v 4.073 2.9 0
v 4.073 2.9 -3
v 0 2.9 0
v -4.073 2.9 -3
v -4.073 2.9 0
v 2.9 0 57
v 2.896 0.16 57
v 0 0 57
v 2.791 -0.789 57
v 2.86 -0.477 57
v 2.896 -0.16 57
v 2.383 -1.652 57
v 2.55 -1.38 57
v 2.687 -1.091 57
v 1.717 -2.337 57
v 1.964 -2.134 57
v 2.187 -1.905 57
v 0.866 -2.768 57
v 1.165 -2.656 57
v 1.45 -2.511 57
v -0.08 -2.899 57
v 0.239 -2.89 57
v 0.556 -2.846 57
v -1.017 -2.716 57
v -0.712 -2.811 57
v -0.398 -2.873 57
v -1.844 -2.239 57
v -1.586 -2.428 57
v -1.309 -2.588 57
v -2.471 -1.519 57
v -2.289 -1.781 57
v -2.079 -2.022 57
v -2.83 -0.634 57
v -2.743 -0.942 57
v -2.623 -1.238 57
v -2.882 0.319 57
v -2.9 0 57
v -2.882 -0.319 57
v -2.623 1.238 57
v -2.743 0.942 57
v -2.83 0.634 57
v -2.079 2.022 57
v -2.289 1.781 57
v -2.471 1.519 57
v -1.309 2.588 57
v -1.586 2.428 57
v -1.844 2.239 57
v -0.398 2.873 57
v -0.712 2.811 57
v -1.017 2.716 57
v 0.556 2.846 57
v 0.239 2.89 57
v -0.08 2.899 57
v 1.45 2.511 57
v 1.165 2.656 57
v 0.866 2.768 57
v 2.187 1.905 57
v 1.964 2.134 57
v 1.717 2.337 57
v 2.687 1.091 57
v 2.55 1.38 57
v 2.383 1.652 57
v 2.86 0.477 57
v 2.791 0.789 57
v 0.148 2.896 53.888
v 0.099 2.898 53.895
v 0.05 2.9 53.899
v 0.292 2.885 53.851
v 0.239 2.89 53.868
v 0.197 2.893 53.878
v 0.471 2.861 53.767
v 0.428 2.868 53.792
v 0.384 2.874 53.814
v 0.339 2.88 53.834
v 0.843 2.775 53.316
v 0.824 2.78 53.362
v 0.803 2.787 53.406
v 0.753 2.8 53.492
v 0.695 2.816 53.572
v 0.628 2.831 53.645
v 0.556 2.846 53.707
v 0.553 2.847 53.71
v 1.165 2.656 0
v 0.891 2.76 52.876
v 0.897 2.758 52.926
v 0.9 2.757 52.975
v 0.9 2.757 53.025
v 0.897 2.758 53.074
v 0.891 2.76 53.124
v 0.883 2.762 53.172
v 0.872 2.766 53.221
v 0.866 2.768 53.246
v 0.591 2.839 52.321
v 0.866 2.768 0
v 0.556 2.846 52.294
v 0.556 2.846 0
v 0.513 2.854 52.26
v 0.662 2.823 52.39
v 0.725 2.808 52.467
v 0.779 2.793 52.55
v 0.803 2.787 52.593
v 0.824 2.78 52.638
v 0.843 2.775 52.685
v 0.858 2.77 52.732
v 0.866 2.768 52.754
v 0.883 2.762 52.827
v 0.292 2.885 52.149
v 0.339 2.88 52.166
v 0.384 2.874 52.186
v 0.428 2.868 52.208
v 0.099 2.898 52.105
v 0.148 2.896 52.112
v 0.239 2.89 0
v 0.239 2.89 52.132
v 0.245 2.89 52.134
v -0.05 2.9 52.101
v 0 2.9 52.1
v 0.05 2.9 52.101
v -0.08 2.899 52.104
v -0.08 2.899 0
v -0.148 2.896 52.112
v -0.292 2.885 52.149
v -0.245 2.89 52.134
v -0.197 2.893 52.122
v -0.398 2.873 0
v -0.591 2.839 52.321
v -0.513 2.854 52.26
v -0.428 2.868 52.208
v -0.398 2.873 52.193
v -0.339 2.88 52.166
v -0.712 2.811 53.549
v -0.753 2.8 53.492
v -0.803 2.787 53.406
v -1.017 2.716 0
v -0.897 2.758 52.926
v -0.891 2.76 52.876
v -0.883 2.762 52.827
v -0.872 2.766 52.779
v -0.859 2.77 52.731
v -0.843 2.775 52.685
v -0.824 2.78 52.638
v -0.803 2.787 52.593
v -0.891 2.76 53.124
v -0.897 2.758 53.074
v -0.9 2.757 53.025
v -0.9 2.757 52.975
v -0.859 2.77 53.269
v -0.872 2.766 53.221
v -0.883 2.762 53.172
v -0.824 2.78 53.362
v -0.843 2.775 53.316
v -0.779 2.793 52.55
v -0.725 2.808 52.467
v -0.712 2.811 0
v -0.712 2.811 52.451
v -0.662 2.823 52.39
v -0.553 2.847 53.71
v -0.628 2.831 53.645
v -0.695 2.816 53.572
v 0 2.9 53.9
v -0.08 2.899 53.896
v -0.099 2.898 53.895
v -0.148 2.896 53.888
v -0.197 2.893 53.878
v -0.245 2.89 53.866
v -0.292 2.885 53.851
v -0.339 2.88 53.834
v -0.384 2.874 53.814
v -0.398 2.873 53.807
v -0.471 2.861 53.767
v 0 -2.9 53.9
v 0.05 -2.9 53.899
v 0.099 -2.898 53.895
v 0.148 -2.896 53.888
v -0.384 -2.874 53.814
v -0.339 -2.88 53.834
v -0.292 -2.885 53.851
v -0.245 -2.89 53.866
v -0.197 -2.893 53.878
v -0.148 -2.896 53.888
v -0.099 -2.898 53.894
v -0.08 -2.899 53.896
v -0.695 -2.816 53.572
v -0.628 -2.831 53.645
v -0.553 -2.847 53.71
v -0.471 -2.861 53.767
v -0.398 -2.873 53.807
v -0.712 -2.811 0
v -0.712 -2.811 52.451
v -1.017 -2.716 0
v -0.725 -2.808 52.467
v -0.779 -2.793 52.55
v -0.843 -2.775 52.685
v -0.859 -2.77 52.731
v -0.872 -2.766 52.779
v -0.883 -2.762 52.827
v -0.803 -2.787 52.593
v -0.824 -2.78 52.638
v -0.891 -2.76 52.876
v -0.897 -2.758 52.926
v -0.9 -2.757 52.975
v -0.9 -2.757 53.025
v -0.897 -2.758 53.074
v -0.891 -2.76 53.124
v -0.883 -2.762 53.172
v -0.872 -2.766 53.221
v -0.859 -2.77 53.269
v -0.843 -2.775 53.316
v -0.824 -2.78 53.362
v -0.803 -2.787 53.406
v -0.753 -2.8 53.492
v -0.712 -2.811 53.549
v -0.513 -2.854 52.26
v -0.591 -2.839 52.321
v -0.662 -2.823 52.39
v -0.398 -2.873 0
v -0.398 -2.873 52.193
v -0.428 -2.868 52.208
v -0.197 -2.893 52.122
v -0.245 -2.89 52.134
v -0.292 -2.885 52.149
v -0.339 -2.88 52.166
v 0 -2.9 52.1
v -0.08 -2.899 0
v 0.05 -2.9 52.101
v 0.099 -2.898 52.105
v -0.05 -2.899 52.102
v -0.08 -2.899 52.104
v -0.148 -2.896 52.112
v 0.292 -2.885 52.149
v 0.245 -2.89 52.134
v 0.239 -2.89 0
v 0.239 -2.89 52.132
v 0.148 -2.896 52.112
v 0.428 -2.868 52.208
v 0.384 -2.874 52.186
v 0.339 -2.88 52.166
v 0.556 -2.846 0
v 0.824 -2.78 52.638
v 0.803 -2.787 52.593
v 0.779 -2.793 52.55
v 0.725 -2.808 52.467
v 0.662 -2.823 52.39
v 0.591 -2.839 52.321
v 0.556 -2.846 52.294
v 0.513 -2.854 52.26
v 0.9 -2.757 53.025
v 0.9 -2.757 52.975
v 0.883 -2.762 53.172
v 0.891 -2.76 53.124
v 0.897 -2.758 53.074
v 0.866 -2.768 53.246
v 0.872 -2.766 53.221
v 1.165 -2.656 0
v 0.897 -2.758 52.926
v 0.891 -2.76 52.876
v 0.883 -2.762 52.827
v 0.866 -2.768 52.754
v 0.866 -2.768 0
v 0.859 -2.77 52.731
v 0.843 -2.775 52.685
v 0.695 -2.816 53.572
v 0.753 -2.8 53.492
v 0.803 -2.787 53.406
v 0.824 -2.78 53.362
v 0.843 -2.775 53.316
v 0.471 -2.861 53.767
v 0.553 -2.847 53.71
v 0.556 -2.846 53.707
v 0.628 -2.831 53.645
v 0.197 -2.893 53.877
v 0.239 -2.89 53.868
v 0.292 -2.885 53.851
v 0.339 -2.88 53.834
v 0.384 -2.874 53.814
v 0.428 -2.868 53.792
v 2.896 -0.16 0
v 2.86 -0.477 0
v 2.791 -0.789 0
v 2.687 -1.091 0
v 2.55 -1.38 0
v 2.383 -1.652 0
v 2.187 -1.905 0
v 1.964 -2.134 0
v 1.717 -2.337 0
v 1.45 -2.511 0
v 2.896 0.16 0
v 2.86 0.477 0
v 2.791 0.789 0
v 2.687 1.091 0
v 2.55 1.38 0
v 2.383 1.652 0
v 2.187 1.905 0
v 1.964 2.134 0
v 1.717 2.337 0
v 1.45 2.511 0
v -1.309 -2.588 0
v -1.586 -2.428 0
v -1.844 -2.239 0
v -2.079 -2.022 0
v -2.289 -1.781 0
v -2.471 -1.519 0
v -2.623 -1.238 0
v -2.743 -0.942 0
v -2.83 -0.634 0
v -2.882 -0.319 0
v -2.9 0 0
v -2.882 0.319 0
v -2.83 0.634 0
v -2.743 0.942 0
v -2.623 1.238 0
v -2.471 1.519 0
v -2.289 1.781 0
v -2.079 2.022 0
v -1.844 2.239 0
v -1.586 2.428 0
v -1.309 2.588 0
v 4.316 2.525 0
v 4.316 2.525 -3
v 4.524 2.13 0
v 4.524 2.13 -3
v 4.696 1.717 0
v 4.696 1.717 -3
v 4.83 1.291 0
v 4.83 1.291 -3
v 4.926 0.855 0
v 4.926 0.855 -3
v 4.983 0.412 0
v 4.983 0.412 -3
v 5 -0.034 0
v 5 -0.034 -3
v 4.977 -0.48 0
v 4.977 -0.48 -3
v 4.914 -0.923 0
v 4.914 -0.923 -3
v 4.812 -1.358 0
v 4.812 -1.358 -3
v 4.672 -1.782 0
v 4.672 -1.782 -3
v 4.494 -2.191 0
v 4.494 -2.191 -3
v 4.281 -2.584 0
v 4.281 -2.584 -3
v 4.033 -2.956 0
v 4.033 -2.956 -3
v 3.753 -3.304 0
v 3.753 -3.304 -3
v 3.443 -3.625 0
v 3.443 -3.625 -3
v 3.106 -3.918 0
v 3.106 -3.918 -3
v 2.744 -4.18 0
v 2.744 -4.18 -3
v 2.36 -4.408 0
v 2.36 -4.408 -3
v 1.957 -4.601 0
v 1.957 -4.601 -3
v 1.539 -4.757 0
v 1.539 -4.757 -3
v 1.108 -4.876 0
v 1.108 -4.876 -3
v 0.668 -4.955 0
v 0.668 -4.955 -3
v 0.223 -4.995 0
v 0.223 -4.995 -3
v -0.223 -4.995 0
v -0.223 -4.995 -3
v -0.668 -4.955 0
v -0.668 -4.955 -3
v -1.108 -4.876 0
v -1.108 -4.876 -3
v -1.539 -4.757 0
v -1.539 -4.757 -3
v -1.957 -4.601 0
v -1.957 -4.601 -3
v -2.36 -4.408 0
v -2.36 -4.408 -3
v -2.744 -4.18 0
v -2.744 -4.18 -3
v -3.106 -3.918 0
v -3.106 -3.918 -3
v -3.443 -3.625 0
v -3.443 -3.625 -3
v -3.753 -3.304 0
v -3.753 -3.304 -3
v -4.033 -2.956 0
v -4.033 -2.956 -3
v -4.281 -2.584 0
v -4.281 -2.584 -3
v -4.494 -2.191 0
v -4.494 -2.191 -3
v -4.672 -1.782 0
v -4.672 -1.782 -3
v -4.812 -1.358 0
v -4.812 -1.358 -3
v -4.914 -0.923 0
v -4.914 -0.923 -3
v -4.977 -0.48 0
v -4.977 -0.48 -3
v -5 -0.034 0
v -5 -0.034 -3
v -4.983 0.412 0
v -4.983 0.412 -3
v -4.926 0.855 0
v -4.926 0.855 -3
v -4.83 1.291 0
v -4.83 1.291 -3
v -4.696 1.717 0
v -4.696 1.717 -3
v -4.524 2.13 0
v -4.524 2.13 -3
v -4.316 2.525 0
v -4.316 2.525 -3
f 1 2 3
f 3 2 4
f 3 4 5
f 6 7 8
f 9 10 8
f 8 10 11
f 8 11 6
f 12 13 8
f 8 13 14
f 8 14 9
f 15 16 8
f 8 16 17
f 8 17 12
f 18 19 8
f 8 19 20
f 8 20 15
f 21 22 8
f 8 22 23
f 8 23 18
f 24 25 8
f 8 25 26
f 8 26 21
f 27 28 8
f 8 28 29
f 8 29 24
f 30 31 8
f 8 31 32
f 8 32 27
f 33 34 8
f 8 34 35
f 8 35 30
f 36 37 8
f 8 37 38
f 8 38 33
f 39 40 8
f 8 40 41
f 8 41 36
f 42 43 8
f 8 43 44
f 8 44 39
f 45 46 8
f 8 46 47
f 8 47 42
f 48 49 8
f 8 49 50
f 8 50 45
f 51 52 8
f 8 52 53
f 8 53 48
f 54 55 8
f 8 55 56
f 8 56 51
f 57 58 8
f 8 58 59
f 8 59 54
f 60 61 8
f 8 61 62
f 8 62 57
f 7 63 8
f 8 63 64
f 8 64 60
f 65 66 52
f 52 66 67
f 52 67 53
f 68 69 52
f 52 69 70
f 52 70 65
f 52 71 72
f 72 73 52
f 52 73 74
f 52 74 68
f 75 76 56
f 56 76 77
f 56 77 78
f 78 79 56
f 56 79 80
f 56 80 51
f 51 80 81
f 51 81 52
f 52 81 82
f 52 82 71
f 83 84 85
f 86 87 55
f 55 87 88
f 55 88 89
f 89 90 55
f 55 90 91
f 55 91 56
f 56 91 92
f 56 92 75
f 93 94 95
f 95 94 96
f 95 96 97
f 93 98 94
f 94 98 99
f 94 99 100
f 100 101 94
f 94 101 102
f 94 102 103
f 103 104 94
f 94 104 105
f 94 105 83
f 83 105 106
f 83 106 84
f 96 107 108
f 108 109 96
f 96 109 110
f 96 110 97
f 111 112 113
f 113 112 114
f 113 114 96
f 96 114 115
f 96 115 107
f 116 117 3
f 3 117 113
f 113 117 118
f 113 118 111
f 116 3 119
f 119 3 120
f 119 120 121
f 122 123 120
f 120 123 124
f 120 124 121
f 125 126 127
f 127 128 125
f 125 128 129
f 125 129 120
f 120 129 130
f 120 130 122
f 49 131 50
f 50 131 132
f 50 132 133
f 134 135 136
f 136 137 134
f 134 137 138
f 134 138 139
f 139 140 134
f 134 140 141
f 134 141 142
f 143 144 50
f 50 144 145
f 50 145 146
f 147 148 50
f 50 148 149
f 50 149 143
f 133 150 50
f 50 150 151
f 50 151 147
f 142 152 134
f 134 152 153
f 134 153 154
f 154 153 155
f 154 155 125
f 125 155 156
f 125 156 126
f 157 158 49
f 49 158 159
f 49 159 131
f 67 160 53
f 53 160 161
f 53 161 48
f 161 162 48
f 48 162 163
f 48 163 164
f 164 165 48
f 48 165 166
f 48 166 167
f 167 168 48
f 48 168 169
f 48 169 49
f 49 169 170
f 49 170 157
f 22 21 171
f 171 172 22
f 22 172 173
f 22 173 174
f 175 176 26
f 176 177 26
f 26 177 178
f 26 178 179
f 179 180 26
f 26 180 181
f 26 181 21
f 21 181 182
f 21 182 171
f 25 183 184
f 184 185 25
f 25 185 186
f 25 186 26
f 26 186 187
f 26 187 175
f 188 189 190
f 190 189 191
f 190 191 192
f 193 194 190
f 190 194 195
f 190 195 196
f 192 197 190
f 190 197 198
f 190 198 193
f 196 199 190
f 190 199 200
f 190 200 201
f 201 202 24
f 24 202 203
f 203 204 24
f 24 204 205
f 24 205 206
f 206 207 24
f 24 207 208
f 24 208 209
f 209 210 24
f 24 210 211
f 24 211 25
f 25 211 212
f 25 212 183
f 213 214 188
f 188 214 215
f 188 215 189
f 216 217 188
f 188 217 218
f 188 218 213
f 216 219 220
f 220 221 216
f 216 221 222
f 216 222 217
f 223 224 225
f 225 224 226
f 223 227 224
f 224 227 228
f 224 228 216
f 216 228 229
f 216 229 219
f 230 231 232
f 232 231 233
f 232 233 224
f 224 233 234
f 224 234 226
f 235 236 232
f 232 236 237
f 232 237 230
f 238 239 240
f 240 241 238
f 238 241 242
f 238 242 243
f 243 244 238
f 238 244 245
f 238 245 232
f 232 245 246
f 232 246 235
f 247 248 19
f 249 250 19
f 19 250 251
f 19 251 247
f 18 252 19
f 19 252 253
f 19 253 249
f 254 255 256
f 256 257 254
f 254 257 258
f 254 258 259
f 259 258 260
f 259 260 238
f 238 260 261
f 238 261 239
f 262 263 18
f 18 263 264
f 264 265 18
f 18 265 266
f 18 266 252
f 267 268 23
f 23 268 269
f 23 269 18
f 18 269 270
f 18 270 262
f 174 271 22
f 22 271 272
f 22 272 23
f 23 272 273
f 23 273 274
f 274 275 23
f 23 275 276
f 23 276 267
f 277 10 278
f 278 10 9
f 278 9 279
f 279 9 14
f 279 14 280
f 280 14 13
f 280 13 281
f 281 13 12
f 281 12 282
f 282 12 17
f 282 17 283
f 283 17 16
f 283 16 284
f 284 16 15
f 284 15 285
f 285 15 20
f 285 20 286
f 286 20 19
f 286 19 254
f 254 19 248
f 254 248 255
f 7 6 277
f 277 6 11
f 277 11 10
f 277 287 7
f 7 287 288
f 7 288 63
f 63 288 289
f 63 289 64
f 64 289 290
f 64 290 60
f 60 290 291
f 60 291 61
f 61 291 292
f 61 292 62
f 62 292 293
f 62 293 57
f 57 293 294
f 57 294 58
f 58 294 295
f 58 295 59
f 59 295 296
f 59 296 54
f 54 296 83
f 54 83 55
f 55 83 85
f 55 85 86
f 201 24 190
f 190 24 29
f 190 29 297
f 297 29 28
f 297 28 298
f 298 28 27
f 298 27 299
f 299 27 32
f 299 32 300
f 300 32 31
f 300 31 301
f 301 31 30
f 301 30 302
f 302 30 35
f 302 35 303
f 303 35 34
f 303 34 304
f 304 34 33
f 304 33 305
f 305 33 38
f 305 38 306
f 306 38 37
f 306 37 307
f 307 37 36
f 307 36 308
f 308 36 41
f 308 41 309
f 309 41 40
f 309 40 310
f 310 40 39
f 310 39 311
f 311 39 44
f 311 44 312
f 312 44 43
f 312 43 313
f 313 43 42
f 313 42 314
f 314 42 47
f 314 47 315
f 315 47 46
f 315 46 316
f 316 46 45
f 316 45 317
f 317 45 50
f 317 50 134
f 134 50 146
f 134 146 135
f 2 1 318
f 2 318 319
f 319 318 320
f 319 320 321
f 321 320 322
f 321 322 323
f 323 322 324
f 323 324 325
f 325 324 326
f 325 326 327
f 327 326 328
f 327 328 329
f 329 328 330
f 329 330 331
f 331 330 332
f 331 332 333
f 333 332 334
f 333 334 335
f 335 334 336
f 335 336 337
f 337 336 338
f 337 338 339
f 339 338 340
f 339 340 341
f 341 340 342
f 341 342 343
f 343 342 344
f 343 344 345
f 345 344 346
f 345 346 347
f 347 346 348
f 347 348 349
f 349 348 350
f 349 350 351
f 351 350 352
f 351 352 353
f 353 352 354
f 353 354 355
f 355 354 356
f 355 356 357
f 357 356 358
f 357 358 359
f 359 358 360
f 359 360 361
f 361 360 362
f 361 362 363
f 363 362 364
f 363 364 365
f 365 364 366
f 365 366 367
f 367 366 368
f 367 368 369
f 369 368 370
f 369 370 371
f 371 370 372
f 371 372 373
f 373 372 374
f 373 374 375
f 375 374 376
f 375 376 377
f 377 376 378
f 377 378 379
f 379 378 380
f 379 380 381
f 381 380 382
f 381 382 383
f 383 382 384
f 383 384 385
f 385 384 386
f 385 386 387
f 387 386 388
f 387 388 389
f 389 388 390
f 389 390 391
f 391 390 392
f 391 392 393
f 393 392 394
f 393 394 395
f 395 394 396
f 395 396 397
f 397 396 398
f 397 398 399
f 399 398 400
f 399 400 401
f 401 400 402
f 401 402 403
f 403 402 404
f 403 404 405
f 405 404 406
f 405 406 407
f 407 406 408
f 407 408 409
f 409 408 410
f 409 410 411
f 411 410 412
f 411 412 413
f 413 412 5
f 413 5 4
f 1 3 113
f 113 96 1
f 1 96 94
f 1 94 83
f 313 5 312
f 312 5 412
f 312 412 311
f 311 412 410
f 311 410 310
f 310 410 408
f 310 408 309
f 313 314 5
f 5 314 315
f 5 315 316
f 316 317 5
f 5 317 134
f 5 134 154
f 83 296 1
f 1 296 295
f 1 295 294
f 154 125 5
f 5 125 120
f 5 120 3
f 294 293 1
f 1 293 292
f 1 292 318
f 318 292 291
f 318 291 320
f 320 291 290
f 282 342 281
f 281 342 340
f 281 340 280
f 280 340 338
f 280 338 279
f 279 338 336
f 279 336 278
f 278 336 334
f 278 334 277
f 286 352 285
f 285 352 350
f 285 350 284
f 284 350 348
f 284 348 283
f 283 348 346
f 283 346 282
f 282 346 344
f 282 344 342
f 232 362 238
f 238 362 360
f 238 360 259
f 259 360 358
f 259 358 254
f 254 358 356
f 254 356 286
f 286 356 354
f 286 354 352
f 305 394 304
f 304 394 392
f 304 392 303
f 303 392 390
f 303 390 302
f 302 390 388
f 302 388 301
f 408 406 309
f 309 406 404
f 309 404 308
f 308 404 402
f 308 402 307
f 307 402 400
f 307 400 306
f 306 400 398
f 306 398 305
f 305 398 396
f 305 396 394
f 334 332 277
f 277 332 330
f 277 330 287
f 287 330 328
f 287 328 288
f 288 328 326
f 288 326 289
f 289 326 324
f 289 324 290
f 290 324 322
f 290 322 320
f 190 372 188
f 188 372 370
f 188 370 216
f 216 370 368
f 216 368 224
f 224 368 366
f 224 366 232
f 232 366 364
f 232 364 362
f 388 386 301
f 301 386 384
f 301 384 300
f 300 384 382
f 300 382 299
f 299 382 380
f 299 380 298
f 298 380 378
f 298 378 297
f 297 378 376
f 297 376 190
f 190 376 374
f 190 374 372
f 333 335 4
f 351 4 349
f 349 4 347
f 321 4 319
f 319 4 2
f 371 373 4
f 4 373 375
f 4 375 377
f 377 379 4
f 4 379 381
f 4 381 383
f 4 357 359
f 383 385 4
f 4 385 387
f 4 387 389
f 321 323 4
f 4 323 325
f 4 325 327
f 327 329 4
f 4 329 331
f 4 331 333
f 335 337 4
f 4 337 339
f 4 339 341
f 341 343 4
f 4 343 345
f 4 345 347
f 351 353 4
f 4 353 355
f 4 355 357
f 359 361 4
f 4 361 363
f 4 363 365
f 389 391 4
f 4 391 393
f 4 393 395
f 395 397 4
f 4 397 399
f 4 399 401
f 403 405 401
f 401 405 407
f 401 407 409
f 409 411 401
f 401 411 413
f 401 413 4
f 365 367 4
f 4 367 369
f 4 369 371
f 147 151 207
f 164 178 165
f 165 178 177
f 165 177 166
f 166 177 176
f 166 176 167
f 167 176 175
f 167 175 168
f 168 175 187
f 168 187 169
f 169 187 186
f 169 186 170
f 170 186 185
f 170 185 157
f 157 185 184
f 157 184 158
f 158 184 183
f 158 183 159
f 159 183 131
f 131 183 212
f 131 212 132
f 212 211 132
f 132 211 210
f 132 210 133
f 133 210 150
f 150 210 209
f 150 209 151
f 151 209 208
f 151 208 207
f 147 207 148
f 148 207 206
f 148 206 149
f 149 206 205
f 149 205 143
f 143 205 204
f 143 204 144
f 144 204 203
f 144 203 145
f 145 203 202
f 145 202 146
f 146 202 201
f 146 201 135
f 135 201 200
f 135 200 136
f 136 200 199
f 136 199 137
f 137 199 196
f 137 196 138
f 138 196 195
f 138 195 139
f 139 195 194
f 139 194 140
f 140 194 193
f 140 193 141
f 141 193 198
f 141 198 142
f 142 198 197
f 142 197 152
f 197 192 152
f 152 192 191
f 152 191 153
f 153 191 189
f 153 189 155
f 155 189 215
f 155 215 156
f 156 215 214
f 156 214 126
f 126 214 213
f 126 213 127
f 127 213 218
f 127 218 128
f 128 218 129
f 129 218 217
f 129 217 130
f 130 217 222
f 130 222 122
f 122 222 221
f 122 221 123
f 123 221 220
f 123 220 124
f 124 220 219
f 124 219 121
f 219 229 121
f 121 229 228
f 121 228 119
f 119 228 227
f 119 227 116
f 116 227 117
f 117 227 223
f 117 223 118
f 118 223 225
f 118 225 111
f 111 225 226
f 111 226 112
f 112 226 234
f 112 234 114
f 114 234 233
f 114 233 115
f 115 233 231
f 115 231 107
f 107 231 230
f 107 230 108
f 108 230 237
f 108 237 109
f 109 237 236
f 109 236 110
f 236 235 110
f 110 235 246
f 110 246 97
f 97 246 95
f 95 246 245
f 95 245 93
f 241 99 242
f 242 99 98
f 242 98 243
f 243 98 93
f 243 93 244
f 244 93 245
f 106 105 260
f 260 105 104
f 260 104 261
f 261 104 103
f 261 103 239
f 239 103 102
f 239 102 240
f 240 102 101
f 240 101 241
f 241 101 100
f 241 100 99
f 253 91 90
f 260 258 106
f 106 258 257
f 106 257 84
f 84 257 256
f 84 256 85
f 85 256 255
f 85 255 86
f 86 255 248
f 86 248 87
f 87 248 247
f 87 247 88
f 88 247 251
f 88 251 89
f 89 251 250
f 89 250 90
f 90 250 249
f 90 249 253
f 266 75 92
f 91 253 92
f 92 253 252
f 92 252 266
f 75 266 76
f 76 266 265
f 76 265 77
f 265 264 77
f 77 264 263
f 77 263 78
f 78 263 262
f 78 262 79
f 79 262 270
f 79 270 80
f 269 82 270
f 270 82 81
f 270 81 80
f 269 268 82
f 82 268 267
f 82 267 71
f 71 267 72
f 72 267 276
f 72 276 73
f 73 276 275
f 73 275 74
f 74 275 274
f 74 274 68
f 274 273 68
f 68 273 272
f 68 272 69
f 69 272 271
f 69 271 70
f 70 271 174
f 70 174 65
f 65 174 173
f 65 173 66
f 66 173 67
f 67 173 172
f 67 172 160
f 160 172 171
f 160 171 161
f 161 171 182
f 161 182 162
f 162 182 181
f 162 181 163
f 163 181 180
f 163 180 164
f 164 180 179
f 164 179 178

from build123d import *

# Parameters (mm, degrees)
SKETCH1_R            = 2.9
BOSS_EXTRUDE1_DEPTH  = 57
BOSS_EXTRUDE2_START  = -3
SKETCH1_3_R          = 5
SKETCH1_3_R_2        = 2.9
BOSS_EXTRUDE2_DEPTH  = 3
INTERSECT1_START     = 2.9
INTERSECT1_OUTLINE_W = 12
INTERSECT1_OUTLINE_H = 3
INTERSECT1_DEPTH     = 2.1
SKETCH2_R            = 0.9
CUT_EXTRUDE1_DEPTH   = 58.761665488


# Read off the part's stored shape, not the designer's step: Intersect1
with BuildPart() as part:
    # Sketch1 → Boss-Extrude1 (new body)
    with BuildSketch(Plane.XY):
        with Locations(Location((0, 0, 0), (0, 0, 180))):
            Circle(SKETCH1_R)
    extrude(amount=BOSS_EXTRUDE1_DEPTH)

    # Sketch1<3> → Boss-Extrude2 (add)
    # profile 1 of 2: a face of its own
    with BuildSketch(Plane.XY.offset(BOSS_EXTRUDE2_START)):
        Circle(SKETCH1_3_R)
        with Locations(Location((0, 0, 0), (0, 0, 180))):
            Circle(SKETCH1_3_R_2, mode=Mode.SUBTRACT)
    # profile 2 of 2: a face of its own
    with BuildSketch(Plane.XY.offset(BOSS_EXTRUDE2_START)):
        with Locations(Location((0, 0, 0), (0, 0, 180))):
            Circle(SKETCH1_3_R_2)
    extrude(amount=BOSS_EXTRUDE2_DEPTH)

    # Intersect1 outline → Intersect1 (cut)
    with BuildSketch(Plane(origin=(0, 0, 0), x_dir=(1, 0, 0), z_dir=(0, 1, 0)).offset(INTERSECT1_START)):
        with Locations((0, 1.5)):
            Rectangle(INTERSECT1_OUTLINE_W, INTERSECT1_OUTLINE_H)
    extrude(amount=INTERSECT1_DEPTH, mode=Mode.SUBTRACT)

    # Sketch2 → Cut-Extrude1 (cut, through all)
    with BuildSketch(Plane(origin=(0, 2.9, 0), x_dir=(1, 0, 0), z_dir=(0, 1, 0))):
        with Locations(Location((0, -53, 0), (0, 0, 270))):
            Circle(SKETCH2_R)
    extrude(amount=-CUT_EXTRUDE1_DEPTH, mode=Mode.SUBTRACT)


solid = part.part
